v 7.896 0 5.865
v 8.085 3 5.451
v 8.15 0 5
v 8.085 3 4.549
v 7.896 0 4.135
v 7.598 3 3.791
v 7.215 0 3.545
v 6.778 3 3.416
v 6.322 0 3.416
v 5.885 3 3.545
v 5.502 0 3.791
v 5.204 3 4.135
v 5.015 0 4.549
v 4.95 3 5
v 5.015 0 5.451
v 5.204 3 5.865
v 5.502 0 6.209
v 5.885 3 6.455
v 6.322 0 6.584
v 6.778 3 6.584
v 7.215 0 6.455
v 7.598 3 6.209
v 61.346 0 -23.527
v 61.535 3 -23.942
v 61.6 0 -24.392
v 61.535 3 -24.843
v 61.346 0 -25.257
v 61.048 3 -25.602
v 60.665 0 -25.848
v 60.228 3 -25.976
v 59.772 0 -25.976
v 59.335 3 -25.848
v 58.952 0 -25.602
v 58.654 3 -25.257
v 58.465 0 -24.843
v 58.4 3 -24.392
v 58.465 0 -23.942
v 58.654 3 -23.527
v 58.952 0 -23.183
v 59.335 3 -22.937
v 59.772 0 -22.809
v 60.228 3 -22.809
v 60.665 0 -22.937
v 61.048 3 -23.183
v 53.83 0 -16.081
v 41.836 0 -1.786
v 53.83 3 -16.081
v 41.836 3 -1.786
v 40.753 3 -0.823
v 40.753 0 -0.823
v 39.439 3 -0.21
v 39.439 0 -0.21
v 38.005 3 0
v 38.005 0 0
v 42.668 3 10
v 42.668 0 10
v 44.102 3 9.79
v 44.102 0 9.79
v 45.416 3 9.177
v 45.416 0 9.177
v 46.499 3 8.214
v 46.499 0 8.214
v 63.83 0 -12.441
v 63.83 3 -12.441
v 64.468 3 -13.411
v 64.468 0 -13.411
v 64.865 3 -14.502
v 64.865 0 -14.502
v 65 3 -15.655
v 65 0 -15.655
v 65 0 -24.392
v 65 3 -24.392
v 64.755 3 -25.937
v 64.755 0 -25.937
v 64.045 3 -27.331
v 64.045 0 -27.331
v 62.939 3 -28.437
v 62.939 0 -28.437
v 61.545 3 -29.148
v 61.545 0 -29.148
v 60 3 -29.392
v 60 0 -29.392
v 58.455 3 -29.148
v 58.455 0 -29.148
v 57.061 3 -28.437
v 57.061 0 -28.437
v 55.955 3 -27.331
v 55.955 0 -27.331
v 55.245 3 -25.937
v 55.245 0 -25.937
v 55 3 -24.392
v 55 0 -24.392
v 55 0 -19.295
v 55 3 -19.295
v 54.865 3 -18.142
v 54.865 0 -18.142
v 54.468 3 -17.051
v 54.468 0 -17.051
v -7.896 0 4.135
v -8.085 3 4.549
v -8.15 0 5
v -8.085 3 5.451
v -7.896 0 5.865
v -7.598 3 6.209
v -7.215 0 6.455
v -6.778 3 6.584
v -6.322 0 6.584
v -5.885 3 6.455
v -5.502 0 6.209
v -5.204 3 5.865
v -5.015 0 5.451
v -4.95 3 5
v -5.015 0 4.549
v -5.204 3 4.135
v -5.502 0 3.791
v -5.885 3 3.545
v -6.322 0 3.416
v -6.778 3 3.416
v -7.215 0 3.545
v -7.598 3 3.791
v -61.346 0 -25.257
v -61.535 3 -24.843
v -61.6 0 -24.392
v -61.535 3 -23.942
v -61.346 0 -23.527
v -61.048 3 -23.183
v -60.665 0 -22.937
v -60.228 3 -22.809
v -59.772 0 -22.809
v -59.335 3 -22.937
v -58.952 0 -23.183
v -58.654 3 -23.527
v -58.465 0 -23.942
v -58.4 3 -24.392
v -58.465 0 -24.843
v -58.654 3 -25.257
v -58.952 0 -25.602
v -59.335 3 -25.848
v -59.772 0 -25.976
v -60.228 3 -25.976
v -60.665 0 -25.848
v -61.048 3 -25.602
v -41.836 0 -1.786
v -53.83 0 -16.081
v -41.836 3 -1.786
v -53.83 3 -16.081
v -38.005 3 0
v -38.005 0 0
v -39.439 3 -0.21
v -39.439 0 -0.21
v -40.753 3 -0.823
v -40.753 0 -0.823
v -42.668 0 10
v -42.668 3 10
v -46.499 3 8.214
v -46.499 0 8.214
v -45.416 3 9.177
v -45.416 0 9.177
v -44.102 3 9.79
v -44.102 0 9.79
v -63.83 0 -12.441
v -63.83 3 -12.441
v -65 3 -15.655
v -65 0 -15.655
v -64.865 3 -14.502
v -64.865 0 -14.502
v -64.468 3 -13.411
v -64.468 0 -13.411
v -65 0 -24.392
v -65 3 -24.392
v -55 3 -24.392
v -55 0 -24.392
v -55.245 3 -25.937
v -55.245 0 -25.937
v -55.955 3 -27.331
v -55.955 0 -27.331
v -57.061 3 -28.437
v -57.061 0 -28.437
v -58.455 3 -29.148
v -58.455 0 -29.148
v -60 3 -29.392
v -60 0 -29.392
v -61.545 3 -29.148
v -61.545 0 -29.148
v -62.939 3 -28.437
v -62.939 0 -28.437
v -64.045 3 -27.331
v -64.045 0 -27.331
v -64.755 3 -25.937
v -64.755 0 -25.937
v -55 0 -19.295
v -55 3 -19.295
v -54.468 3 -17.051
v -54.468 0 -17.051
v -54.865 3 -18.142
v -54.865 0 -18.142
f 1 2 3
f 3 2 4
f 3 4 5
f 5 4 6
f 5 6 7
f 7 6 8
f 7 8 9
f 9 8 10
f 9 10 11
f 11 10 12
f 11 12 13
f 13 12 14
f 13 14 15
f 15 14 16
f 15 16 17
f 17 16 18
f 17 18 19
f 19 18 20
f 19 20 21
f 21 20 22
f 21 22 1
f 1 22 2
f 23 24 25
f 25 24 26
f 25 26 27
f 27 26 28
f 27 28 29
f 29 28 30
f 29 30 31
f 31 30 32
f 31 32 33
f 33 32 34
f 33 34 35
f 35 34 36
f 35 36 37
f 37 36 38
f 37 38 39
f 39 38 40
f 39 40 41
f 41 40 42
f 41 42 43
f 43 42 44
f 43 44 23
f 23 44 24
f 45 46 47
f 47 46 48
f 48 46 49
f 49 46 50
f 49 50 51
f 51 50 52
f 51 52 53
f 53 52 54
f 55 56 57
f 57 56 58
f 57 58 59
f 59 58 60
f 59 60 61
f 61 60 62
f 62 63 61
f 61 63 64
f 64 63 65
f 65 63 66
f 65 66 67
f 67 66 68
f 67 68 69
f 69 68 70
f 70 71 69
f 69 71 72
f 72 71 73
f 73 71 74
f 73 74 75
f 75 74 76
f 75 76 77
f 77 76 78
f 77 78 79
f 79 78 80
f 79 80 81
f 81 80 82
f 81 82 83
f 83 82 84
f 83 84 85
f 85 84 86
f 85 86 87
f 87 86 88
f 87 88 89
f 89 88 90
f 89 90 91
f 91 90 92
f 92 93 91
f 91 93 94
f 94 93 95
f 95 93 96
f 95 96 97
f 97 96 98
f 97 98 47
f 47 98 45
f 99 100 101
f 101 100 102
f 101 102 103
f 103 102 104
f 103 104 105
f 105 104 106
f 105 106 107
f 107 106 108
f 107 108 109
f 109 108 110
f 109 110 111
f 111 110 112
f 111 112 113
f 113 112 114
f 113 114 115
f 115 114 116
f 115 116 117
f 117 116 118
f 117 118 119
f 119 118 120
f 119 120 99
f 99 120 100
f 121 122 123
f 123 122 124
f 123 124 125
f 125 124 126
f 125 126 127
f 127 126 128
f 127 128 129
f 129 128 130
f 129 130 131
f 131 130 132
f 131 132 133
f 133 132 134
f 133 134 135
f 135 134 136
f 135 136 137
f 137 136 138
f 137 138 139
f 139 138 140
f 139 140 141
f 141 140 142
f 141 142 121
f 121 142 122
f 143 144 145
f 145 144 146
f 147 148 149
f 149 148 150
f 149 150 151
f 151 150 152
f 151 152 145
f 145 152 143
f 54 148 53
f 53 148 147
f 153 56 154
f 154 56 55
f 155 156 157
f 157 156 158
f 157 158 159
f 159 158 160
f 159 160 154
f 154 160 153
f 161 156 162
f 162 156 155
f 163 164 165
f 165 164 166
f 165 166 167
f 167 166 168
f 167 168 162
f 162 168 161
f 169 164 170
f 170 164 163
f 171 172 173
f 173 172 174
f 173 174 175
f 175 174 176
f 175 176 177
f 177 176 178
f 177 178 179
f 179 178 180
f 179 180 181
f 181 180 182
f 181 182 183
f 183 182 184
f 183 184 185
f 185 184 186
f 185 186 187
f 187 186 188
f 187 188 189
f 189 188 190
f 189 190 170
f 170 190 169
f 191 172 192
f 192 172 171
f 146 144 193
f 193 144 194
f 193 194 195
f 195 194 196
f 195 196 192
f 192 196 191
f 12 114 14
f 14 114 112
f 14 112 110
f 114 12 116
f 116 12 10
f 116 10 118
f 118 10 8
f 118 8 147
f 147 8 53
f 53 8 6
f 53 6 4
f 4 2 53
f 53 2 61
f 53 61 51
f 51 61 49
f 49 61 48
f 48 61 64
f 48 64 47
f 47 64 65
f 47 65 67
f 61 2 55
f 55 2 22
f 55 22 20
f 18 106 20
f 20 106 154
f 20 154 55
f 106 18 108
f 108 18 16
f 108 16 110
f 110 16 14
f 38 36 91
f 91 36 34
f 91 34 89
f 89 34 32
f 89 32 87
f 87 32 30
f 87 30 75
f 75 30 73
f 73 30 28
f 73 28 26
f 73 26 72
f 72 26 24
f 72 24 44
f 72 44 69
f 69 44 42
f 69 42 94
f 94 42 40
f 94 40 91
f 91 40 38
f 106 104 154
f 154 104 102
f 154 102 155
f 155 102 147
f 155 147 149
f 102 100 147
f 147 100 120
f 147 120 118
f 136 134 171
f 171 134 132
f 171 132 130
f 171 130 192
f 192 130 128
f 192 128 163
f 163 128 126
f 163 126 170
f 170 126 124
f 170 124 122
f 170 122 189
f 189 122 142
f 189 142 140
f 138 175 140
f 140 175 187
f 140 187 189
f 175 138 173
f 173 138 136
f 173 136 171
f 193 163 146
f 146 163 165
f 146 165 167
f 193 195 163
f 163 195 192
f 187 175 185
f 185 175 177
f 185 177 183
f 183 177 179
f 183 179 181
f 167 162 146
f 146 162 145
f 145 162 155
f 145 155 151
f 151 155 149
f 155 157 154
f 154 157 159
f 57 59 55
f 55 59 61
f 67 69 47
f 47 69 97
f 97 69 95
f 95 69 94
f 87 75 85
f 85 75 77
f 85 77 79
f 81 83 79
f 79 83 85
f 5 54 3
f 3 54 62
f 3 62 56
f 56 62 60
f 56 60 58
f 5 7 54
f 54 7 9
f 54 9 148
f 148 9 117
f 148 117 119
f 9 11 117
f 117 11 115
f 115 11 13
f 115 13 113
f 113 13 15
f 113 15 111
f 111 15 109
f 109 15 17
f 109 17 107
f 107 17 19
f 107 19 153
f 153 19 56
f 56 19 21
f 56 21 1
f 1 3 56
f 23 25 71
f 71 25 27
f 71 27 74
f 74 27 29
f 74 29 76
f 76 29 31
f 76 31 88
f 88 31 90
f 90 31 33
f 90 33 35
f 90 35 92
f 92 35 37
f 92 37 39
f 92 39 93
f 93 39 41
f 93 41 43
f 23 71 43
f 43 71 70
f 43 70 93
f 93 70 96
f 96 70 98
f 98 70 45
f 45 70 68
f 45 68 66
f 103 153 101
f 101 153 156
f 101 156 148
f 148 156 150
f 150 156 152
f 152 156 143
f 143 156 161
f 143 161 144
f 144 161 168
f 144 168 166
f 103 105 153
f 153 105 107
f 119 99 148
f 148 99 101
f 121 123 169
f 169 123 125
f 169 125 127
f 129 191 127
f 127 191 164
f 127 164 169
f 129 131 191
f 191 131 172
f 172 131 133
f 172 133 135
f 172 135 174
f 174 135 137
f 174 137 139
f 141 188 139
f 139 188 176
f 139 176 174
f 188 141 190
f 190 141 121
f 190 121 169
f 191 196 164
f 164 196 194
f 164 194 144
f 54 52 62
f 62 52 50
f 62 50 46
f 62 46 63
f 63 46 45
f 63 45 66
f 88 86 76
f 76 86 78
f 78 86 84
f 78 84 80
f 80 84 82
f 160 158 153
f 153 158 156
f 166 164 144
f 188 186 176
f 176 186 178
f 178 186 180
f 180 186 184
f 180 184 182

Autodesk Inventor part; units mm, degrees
ref_plane "YZ Plane" through (0, 0, 0) normal (1, 0, 0) x (0, 1, 0)
ref_plane "XZ Plane" through (0, 0, 0) normal (0, 1, 0) x (-1, 0, 0)
ref_plane "XY Plane" through (0, 0, 0) normal (0, 0, 1) x (1, 0, 0)
sketch "Sketch1" plane through (0, 0, 0) normal (0, 1, 0) x (-1, 0, 0)
  line L0 (0, 0) -> (0, 10)
  line L1 (0, 10) -> (42.6685, 10)
  line L2 (0, 0) -> (38.0054, 0)
  line L3 (41.8356, -1.7861) -> (53.8302, -16.0807)
  line L4 (55, -19.2946) -> (55, -24.3923)
  line L5 (60, -29.3923) -> (60, -29.3923)
  line L6 (65, -24.3923) -> (65, -15.6549)
  line L7 (63.8302, -12.441) -> (46.4987, 8.2139)
  arc A0 (45.5995, 9.2856) -> (44.0674, 10) centre (44.0674, 8) ccw
  arc A1 (41.8356, -1.7861) -> (38.0054, 0) centre (38.0054, -5) ccw
  arc A2 (55, -19.2946) -> (53.8302, -16.0807) centre (50, -19.2946) ccw
  arc A3 (65, -15.6549) -> (63.8302, -12.441) centre (60, -15.6549) ccw
  arc A4 (46.4987, 8.2139) -> (42.6685, 10) centre (42.6685, 5) ccw
  arc A5 (60, -29.3923) -> (65, -24.3923) centre (60, -24.3923) ccw
  arc A6 (55, -24.3923) -> (60, -29.3923) centre (60, -24.3923) ccw
  point P0 (55, -29.3923)
  point P1 (65, -29.3923)
  point P2 (45, 10)
  point P3 (60, -29.3923)
  dimension "d1" = 130
  dimension "d2" = 140
  dimension "d3" = 45
  dimension "d4" = 20
  dimension "d5" = 10
  dimension "d6" = 10
  dimension "d7" = 10
  dimension "d8" = 2
  dimension "d9" = 5
extrude "Extrusion1" add sketch "Sketch1" along normal blind 3
sketch "Sketch2" plane through (0, 3, 0) normal (0, 1, 0) x (1, 0, 0)
  line L0 (0, -10) -> (0, 0) projected
  line L1 (0, -5) -> (-25.3234, -5) construction
  arc A0 (-55, 24.3923) -> (-65, 24.3923) centre (-60, 24.3923) ccw projected
  point P0 (-6.55, -5)
  dimension "d19" = 6.55
hole "Hole1" at (-6.55, 3, 5) at (-60, 3, -24.3923) direction (0, -1, 0) diameter 3.2 end through all clearance for "Countersunk Flat Head Screw DIN EN ISO 2009" size "M3" standard "DIN"
mirror "Mirror1" about plane through (0, 0, 0) normal (1, 0, 0) of "Extrusion1", "Hole1"
properties part number "Claw1" material "Copper, Cast"
